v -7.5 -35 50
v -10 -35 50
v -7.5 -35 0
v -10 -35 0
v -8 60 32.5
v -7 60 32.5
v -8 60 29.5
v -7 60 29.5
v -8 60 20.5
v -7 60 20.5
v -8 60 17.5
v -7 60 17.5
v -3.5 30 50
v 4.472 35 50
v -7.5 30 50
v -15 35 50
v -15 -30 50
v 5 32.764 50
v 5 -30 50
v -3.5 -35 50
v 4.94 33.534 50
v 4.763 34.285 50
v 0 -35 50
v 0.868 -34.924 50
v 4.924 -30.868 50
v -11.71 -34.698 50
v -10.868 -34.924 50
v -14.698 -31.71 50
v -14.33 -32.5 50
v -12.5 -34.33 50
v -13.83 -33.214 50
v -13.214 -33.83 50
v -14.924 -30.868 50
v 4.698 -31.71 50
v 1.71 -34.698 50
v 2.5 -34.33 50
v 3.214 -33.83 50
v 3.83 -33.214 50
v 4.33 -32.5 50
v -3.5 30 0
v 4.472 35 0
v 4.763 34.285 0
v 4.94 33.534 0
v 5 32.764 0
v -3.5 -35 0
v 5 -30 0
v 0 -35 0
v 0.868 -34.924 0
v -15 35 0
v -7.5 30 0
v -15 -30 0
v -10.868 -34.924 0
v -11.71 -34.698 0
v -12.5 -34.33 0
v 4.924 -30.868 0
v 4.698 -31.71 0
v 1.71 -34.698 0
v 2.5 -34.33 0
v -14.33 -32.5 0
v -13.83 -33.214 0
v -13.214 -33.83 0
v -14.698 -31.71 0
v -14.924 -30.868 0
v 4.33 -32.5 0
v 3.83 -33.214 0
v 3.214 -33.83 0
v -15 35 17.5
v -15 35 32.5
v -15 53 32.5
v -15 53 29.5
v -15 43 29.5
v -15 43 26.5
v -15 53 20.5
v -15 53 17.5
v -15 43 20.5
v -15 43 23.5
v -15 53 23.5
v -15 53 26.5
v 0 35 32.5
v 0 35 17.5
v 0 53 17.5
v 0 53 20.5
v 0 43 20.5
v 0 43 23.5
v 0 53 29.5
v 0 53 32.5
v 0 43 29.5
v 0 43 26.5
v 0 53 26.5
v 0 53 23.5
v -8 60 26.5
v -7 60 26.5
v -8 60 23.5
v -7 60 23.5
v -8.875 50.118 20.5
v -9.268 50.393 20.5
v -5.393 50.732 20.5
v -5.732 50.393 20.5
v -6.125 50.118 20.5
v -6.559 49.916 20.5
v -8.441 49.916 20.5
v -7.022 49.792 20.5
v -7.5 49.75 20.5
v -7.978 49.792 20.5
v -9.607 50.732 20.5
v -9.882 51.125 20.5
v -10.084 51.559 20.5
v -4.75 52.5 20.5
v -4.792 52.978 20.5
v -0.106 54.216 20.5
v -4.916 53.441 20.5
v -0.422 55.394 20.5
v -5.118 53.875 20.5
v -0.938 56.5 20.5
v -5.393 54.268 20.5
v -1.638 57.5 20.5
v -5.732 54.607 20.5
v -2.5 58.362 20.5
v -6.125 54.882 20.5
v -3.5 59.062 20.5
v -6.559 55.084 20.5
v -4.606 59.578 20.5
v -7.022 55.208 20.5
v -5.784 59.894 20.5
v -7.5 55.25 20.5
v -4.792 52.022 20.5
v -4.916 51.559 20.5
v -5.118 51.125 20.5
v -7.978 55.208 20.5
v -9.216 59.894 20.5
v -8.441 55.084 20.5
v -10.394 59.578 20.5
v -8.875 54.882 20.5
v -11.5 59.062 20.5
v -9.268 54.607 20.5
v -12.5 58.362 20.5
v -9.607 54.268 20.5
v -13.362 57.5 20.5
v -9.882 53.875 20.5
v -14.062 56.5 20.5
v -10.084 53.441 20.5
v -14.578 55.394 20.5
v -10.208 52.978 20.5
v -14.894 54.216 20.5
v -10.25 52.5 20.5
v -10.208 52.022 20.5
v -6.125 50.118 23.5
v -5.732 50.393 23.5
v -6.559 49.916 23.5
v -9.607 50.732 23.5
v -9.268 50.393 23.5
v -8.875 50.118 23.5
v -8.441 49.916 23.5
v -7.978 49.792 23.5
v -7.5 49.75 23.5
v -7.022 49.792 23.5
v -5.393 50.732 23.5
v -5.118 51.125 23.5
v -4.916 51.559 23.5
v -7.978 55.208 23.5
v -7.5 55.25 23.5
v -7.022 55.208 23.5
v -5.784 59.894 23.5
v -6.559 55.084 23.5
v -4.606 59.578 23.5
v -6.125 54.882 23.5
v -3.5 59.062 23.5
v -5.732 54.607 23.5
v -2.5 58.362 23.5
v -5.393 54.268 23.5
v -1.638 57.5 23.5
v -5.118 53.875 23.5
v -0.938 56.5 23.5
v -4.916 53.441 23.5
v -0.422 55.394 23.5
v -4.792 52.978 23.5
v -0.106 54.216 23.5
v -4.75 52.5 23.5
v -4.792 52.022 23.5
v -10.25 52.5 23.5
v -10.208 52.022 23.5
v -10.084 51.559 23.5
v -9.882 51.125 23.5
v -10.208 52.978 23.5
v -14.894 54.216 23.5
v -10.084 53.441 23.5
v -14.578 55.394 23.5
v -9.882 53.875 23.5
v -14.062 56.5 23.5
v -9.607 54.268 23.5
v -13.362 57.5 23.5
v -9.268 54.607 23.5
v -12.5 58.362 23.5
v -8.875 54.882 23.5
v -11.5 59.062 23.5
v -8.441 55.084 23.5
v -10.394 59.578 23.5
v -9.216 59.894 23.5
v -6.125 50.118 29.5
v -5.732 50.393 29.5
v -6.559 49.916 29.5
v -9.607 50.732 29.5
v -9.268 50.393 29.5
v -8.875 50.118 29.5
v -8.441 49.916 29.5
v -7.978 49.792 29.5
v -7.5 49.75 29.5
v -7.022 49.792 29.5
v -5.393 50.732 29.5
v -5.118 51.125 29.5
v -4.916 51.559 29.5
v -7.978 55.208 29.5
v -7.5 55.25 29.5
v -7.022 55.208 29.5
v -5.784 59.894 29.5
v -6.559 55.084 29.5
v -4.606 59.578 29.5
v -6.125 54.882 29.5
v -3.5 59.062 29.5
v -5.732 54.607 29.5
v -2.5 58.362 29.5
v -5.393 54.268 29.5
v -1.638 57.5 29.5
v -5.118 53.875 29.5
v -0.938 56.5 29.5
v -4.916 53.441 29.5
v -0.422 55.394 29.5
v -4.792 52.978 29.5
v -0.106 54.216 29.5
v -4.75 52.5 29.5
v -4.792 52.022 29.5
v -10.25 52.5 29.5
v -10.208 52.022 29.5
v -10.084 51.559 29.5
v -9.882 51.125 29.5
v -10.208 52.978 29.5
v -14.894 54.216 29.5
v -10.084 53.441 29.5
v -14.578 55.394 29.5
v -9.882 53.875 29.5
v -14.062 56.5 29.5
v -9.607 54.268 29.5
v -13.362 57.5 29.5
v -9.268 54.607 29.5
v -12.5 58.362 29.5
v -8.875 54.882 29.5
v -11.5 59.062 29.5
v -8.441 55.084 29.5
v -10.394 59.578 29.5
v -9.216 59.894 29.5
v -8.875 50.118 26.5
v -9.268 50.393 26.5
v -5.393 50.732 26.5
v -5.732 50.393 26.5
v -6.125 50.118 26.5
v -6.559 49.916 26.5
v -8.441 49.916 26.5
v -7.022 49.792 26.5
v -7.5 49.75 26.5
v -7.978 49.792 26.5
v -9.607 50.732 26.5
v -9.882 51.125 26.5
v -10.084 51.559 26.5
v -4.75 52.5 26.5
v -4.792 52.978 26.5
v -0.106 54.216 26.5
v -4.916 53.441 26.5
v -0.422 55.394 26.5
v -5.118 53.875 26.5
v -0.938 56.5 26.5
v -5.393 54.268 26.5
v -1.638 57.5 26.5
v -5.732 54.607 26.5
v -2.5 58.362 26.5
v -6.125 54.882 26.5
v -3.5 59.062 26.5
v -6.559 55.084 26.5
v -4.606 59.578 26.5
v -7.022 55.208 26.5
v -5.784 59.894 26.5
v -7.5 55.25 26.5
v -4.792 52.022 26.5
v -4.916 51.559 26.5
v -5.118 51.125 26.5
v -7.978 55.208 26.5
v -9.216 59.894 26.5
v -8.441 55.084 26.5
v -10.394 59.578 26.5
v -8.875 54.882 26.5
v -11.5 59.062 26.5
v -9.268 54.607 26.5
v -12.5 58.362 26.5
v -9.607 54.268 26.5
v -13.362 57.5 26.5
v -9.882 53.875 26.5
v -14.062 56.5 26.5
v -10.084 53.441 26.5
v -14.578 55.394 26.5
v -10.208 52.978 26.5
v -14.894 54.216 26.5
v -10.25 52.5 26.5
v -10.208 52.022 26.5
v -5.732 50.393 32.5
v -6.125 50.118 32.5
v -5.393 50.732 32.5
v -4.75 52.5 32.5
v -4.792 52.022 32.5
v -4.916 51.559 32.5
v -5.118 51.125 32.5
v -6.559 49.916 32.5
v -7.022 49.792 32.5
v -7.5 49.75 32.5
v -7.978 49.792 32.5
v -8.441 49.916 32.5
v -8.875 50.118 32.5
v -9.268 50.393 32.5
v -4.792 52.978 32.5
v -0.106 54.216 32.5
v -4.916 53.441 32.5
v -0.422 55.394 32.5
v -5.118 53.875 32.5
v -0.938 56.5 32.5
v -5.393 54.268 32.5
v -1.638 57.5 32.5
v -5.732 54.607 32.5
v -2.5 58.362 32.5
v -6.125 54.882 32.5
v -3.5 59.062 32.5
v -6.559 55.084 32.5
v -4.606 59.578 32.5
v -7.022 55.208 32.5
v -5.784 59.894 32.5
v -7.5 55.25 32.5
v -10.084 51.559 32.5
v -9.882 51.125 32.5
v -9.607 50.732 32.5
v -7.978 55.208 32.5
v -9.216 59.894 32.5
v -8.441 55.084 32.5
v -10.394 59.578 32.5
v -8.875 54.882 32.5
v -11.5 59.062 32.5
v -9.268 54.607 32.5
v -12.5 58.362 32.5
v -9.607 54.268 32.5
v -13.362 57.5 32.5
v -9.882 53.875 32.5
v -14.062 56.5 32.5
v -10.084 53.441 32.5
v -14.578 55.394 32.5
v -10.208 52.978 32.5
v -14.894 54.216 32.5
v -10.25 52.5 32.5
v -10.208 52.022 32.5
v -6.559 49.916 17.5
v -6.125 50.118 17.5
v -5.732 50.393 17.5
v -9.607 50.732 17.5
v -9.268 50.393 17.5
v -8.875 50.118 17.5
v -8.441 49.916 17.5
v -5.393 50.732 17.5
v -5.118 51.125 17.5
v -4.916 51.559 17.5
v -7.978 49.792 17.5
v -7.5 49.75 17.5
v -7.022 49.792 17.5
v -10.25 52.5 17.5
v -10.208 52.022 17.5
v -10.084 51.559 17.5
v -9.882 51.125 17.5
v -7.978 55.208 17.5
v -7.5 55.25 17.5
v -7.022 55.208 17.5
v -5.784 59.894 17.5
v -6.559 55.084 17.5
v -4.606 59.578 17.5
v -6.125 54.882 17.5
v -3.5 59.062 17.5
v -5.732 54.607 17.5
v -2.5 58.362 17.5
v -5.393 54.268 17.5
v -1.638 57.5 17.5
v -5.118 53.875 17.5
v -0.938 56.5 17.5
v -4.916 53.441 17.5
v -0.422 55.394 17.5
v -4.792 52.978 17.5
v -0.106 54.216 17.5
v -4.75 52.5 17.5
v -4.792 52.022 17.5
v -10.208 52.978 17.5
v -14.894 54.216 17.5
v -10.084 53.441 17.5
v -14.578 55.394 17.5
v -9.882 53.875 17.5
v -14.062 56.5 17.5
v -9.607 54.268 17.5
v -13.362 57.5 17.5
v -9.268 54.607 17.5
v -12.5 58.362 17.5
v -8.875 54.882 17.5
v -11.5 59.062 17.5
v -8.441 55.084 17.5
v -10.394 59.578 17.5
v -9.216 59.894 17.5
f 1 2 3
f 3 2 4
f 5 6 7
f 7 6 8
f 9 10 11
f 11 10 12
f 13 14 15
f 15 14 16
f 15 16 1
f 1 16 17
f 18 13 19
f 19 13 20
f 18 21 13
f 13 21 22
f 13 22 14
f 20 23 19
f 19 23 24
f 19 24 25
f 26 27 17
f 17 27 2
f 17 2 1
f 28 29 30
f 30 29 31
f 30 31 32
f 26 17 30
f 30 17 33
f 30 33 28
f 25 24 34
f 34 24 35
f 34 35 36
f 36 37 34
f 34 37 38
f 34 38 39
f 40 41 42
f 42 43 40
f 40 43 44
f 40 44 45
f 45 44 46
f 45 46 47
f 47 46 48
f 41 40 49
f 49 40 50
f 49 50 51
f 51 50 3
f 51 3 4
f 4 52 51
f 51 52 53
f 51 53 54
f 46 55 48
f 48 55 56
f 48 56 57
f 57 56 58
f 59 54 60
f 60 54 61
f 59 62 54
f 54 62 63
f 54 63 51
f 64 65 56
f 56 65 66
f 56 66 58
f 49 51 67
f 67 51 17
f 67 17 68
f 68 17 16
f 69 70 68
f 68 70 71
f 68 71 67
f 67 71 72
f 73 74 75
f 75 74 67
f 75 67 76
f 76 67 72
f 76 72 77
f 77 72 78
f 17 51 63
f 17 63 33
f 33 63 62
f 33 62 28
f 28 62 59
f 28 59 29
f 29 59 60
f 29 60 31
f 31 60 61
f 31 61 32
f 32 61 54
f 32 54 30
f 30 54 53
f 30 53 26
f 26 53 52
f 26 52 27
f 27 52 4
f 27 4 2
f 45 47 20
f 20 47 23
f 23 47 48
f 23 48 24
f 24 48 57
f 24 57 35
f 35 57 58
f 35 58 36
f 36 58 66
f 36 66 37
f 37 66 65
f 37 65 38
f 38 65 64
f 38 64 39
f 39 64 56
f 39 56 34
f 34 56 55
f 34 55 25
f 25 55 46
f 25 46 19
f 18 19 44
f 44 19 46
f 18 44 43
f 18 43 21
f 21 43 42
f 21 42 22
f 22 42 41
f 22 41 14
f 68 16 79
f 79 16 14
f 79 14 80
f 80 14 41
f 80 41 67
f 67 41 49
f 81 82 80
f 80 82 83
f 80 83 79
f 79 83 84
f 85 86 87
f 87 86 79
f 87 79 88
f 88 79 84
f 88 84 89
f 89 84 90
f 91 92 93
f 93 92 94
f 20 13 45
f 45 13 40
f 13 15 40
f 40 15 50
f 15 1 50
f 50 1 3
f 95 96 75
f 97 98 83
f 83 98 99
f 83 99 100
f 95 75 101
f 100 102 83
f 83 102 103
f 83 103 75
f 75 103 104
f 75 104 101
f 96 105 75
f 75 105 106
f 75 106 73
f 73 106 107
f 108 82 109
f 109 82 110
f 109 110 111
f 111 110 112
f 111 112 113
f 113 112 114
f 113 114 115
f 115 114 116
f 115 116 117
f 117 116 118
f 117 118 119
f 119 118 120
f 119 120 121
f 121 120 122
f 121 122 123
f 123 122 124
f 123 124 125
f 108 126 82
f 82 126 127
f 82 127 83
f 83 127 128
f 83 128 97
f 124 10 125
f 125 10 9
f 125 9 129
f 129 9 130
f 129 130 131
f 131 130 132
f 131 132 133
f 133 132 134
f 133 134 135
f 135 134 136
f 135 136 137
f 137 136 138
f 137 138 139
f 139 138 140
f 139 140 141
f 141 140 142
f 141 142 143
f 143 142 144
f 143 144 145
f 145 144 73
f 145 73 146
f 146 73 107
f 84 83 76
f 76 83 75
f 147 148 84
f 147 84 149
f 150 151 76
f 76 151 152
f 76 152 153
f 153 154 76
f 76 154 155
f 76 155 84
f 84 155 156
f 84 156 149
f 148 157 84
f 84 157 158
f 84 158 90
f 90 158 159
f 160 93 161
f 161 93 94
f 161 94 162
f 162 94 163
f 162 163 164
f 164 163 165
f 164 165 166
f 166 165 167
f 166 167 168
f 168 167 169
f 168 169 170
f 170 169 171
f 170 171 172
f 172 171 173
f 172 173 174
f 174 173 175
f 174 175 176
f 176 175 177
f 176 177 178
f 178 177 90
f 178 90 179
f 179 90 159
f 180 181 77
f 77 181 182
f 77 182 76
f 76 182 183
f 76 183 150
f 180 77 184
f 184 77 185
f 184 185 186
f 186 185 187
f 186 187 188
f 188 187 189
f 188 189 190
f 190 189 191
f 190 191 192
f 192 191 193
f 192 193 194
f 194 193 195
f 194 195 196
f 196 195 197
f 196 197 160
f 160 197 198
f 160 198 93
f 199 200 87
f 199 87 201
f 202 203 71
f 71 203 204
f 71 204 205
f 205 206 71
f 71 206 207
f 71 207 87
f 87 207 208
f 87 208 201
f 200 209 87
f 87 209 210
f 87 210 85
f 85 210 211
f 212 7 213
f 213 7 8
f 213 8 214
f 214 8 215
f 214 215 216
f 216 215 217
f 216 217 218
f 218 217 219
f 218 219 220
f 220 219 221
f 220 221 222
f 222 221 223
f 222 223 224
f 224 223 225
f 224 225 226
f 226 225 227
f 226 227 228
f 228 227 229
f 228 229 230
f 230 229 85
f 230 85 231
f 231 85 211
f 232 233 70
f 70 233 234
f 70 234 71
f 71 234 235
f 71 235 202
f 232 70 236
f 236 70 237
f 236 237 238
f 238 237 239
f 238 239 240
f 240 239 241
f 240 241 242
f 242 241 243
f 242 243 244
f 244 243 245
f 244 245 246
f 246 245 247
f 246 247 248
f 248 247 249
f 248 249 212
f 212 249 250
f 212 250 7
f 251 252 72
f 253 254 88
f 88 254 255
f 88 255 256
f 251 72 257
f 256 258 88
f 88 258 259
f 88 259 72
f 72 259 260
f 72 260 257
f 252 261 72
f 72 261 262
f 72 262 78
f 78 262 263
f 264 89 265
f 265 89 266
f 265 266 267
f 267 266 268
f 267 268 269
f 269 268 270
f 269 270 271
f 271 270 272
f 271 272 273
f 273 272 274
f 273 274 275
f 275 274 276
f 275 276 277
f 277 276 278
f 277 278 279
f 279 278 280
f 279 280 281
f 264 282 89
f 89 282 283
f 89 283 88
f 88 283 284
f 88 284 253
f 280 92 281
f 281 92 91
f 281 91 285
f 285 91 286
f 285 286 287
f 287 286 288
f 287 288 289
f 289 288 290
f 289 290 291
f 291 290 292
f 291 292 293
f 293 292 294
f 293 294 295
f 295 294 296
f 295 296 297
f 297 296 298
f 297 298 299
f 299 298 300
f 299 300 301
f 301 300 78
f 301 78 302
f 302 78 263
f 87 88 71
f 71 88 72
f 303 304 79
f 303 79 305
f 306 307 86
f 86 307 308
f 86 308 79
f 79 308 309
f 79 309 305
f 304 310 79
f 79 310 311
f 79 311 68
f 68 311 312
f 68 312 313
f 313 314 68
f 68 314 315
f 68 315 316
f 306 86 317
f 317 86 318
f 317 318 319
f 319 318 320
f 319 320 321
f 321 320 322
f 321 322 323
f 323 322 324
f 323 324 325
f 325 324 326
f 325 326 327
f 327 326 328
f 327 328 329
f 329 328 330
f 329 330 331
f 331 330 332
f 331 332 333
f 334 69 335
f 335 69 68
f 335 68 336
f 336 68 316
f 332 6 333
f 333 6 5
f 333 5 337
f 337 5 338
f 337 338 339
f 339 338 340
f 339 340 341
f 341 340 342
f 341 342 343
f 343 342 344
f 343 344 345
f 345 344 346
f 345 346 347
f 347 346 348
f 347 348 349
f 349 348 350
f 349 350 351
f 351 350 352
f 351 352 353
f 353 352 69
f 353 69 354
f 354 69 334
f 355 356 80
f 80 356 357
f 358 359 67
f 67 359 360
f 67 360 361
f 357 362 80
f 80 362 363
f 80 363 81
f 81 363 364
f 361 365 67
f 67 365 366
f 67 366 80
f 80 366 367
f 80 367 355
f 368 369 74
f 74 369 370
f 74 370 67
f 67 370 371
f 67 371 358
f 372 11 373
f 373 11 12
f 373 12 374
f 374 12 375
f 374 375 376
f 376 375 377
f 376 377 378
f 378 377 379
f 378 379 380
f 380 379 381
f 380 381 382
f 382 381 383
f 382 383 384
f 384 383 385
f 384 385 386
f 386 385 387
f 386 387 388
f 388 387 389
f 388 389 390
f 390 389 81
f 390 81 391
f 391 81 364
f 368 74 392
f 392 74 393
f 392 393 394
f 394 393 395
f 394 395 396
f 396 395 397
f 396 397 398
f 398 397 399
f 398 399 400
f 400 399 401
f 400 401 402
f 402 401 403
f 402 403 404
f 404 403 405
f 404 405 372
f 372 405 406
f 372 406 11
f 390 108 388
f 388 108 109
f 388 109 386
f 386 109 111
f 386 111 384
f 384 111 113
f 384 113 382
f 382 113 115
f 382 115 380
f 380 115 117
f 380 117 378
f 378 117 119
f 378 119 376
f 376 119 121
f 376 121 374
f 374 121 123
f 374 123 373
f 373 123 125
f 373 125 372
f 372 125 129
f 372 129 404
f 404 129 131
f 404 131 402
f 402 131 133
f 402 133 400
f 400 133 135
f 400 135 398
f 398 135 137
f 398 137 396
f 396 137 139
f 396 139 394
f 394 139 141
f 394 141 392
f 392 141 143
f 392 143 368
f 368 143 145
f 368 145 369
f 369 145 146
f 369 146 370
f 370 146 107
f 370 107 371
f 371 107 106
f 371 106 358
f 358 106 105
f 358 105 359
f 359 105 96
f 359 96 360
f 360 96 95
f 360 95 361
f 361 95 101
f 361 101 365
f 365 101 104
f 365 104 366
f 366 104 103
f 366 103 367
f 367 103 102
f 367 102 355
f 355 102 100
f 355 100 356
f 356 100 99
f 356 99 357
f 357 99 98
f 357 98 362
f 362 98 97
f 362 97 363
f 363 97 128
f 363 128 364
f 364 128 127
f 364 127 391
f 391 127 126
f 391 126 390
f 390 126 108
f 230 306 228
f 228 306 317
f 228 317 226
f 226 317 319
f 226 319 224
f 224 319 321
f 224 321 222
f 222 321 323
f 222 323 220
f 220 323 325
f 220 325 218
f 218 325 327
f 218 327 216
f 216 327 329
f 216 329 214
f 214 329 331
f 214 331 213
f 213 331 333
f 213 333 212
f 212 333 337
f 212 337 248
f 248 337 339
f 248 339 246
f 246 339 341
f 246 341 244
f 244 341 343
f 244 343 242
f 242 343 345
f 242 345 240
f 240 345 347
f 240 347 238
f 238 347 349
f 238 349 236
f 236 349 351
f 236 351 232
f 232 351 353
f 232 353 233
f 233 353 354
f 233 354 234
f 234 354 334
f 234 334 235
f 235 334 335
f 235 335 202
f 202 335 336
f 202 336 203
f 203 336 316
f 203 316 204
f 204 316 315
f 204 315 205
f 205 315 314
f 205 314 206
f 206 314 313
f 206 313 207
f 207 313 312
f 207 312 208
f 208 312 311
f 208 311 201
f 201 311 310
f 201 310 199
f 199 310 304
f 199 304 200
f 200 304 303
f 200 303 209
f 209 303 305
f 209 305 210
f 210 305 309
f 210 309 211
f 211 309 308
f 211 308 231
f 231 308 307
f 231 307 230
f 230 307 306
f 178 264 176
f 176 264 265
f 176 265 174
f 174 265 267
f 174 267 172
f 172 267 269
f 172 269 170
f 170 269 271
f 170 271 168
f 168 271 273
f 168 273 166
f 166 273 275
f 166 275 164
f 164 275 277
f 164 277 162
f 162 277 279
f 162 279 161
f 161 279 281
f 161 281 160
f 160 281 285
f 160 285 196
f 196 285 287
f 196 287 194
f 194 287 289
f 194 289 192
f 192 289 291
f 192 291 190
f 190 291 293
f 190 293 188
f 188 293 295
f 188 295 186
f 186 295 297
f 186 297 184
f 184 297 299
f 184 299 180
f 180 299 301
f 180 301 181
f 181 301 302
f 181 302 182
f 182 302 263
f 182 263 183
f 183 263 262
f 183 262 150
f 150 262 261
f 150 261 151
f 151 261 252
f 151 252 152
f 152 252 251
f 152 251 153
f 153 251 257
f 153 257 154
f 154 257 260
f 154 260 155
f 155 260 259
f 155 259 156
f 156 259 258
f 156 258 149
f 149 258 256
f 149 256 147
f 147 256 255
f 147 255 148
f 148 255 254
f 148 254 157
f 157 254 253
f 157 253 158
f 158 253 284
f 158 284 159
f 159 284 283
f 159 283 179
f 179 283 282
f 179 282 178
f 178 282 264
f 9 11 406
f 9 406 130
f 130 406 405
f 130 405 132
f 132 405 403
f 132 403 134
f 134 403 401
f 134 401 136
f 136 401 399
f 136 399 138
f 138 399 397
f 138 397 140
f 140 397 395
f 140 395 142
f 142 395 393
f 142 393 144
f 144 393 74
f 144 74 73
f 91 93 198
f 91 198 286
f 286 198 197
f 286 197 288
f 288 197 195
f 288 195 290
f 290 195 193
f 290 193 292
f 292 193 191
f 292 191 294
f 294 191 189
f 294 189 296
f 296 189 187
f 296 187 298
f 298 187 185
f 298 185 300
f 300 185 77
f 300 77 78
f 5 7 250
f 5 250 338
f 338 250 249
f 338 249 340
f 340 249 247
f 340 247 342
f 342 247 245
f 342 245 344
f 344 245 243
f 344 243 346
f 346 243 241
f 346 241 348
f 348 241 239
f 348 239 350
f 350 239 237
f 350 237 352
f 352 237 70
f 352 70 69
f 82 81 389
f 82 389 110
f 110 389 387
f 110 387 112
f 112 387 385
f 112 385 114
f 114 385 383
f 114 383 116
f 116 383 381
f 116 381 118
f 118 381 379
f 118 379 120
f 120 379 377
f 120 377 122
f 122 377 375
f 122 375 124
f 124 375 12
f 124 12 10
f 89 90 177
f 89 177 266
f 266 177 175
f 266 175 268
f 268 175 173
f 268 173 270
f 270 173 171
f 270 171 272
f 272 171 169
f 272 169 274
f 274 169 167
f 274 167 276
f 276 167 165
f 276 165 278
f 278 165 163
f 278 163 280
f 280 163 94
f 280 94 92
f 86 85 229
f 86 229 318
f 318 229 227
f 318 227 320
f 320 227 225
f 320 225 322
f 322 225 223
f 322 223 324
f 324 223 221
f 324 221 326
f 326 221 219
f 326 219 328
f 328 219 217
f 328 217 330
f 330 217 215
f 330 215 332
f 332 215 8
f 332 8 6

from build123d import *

# Parameters (mm, degrees)
SKETCH1_W           = 4
SKETCH1_H           = 60
BOSS_EXTRUDE1_DEPTH = 50
CUT_EXTRUDE3_REACH  = 81.53
SKETCH2_W           = 17.5
SKETCH2_H           = 25
SKETCH2_W_2         = 3
SKETCH2_H_2         = 17
SKETCH3_R           = 2.75
CUT_EXTRUDE4_DEPTH  = 70.865943062
SKETCH5_W           = 4
SKETCH5_H           = 5
CUT_EXTRUDE5_DEPTH  = 80.529868603
FILLET1_R           = 7


with BuildPart() as part:
    # Sketch1 → Boss-Extrude1 (new body)
    with BuildSketch(Plane.XY):
        with BuildLine():
            Line((4.472135955, 35), (0, 35))
            Line((0, 35), (0, 60))
            Line((0, 60), (-15, 60))
            Line((-15, 60), (-15, 35))
            Line((-15, 35), (-15, -30))
            ThreePointArc((-15, -30), (-13.535533906, -33.535533906), (-10, -35))
            Line((-10, -35), (0, -35))
            ThreePointArc((0, -35), (3.535533906, -33.535533906), (5, -30))
            Line((5, -30), (5, 32.763932023))
            ThreePointArc((5, 32.763932023), (4.866244947, 33.912696625), (4.472135955, 35))
        make_face()
        with Locations((-5.5, 0)):
            Rectangle(SKETCH1_W, SKETCH1_H, mode=Mode.SUBTRACT)
    extrude(amount=BOSS_EXTRUDE1_DEPTH)

    # Sketch2 → Cut-Extrude3 (cut, up to next)
    with BuildSketch(Plane(origin=(0, 0, 0), x_dir=(0, 0, -1), z_dir=(1, 0, 0)), mode=Mode.PRIVATE) as cut_extrude3_sk1:
        with Locations((-8.75, 47.5)):
            Rectangle(SKETCH2_W, SKETCH2_H)
    cut_extrude3_tool1 = extrude(cut_extrude3_sk1.sketch, amount=-CUT_EXTRUDE3_REACH, mode=Mode.PRIVATE) & part.part
    # Sketch2 → Cut-Extrude3 (cut, up to next)
    with BuildSketch(Plane(origin=(0, 0, 0), x_dir=(0, 0, -1), z_dir=(1, 0, 0)), mode=Mode.PRIVATE) as cut_extrude3_sk2:
        with Locations((-41.25, 47.5)):
            Rectangle(SKETCH2_W, SKETCH2_H)
    cut_extrude3_tool2 = extrude(cut_extrude3_sk2.sketch, amount=-CUT_EXTRUDE3_REACH, mode=Mode.PRIVATE) & part.part
    # Sketch2 → Cut-Extrude3 (cut, up to next)
    with BuildSketch(Plane(origin=(0, 0, 0), x_dir=(0, 0, -1), z_dir=(1, 0, 0)), mode=Mode.PRIVATE) as cut_extrude3_sk3:
        with Locations((-28, 51.5)):
            Rectangle(SKETCH2_W_2, SKETCH2_H_2)
    cut_extrude3_tool3 = extrude(cut_extrude3_sk3.sketch, amount=-CUT_EXTRUDE3_REACH, mode=Mode.PRIVATE) & part.part
    # Sketch2 → Cut-Extrude3 (cut, up to next)
    with BuildSketch(Plane(origin=(0, 0, 0), x_dir=(0, 0, -1), z_dir=(1, 0, 0)), mode=Mode.PRIVATE) as cut_extrude3_sk4:
        with Locations((-22, 51.5)):
            Rectangle(SKETCH2_W_2, SKETCH2_H_2)
    cut_extrude3_tool4 = extrude(cut_extrude3_sk4.sketch, amount=-CUT_EXTRUDE3_REACH, mode=Mode.PRIVATE) & part.part
    add(cut_extrude3_tool1.solids().sort_by_distance((0, 47.5, 8.75))[0], mode=Mode.SUBTRACT)
    add(cut_extrude3_tool2.solids().sort_by_distance((0, 47.5, 41.25))[0], mode=Mode.SUBTRACT)
    add(cut_extrude3_tool3.solids().sort_by_distance((0, 51.5, 28))[0], mode=Mode.SUBTRACT)
    add(cut_extrude3_tool4.solids().sort_by_distance((0, 51.5, 22))[0], mode=Mode.SUBTRACT)

    # Sketch3 → Cut-Extrude4 (cut, through all)
    with BuildSketch(Plane.XY.offset(32.5)):
        with Locations((-7.5, 52.5)):
            Circle(SKETCH3_R)
    extrude(amount=-CUT_EXTRUDE4_DEPTH, mode=Mode.SUBTRACT)

    # Sketch5 → Cut-Extrude5 (cut, through all)
    with BuildSketch(Plane.XY.offset(50)):
        with Locations((-5.5, -32.5)):
            Rectangle(SKETCH5_W, SKETCH5_H)
    extrude(amount=-CUT_EXTRUDE5_DEPTH, mode=Mode.SUBTRACT)

    # Fillet1
    fillet1_edges = [part.edges().sort_by_distance(p)[0] for p in [
        (-15, 60, 31),
        (-15, 60, 25),
        (-15, 60, 19),
        (0, 60, 31),
        (0, 60, 25),
        (0, 60, 19),
    ]]
    fillet(fillet1_edges, radius=FILLET1_R)


solid = part.part
